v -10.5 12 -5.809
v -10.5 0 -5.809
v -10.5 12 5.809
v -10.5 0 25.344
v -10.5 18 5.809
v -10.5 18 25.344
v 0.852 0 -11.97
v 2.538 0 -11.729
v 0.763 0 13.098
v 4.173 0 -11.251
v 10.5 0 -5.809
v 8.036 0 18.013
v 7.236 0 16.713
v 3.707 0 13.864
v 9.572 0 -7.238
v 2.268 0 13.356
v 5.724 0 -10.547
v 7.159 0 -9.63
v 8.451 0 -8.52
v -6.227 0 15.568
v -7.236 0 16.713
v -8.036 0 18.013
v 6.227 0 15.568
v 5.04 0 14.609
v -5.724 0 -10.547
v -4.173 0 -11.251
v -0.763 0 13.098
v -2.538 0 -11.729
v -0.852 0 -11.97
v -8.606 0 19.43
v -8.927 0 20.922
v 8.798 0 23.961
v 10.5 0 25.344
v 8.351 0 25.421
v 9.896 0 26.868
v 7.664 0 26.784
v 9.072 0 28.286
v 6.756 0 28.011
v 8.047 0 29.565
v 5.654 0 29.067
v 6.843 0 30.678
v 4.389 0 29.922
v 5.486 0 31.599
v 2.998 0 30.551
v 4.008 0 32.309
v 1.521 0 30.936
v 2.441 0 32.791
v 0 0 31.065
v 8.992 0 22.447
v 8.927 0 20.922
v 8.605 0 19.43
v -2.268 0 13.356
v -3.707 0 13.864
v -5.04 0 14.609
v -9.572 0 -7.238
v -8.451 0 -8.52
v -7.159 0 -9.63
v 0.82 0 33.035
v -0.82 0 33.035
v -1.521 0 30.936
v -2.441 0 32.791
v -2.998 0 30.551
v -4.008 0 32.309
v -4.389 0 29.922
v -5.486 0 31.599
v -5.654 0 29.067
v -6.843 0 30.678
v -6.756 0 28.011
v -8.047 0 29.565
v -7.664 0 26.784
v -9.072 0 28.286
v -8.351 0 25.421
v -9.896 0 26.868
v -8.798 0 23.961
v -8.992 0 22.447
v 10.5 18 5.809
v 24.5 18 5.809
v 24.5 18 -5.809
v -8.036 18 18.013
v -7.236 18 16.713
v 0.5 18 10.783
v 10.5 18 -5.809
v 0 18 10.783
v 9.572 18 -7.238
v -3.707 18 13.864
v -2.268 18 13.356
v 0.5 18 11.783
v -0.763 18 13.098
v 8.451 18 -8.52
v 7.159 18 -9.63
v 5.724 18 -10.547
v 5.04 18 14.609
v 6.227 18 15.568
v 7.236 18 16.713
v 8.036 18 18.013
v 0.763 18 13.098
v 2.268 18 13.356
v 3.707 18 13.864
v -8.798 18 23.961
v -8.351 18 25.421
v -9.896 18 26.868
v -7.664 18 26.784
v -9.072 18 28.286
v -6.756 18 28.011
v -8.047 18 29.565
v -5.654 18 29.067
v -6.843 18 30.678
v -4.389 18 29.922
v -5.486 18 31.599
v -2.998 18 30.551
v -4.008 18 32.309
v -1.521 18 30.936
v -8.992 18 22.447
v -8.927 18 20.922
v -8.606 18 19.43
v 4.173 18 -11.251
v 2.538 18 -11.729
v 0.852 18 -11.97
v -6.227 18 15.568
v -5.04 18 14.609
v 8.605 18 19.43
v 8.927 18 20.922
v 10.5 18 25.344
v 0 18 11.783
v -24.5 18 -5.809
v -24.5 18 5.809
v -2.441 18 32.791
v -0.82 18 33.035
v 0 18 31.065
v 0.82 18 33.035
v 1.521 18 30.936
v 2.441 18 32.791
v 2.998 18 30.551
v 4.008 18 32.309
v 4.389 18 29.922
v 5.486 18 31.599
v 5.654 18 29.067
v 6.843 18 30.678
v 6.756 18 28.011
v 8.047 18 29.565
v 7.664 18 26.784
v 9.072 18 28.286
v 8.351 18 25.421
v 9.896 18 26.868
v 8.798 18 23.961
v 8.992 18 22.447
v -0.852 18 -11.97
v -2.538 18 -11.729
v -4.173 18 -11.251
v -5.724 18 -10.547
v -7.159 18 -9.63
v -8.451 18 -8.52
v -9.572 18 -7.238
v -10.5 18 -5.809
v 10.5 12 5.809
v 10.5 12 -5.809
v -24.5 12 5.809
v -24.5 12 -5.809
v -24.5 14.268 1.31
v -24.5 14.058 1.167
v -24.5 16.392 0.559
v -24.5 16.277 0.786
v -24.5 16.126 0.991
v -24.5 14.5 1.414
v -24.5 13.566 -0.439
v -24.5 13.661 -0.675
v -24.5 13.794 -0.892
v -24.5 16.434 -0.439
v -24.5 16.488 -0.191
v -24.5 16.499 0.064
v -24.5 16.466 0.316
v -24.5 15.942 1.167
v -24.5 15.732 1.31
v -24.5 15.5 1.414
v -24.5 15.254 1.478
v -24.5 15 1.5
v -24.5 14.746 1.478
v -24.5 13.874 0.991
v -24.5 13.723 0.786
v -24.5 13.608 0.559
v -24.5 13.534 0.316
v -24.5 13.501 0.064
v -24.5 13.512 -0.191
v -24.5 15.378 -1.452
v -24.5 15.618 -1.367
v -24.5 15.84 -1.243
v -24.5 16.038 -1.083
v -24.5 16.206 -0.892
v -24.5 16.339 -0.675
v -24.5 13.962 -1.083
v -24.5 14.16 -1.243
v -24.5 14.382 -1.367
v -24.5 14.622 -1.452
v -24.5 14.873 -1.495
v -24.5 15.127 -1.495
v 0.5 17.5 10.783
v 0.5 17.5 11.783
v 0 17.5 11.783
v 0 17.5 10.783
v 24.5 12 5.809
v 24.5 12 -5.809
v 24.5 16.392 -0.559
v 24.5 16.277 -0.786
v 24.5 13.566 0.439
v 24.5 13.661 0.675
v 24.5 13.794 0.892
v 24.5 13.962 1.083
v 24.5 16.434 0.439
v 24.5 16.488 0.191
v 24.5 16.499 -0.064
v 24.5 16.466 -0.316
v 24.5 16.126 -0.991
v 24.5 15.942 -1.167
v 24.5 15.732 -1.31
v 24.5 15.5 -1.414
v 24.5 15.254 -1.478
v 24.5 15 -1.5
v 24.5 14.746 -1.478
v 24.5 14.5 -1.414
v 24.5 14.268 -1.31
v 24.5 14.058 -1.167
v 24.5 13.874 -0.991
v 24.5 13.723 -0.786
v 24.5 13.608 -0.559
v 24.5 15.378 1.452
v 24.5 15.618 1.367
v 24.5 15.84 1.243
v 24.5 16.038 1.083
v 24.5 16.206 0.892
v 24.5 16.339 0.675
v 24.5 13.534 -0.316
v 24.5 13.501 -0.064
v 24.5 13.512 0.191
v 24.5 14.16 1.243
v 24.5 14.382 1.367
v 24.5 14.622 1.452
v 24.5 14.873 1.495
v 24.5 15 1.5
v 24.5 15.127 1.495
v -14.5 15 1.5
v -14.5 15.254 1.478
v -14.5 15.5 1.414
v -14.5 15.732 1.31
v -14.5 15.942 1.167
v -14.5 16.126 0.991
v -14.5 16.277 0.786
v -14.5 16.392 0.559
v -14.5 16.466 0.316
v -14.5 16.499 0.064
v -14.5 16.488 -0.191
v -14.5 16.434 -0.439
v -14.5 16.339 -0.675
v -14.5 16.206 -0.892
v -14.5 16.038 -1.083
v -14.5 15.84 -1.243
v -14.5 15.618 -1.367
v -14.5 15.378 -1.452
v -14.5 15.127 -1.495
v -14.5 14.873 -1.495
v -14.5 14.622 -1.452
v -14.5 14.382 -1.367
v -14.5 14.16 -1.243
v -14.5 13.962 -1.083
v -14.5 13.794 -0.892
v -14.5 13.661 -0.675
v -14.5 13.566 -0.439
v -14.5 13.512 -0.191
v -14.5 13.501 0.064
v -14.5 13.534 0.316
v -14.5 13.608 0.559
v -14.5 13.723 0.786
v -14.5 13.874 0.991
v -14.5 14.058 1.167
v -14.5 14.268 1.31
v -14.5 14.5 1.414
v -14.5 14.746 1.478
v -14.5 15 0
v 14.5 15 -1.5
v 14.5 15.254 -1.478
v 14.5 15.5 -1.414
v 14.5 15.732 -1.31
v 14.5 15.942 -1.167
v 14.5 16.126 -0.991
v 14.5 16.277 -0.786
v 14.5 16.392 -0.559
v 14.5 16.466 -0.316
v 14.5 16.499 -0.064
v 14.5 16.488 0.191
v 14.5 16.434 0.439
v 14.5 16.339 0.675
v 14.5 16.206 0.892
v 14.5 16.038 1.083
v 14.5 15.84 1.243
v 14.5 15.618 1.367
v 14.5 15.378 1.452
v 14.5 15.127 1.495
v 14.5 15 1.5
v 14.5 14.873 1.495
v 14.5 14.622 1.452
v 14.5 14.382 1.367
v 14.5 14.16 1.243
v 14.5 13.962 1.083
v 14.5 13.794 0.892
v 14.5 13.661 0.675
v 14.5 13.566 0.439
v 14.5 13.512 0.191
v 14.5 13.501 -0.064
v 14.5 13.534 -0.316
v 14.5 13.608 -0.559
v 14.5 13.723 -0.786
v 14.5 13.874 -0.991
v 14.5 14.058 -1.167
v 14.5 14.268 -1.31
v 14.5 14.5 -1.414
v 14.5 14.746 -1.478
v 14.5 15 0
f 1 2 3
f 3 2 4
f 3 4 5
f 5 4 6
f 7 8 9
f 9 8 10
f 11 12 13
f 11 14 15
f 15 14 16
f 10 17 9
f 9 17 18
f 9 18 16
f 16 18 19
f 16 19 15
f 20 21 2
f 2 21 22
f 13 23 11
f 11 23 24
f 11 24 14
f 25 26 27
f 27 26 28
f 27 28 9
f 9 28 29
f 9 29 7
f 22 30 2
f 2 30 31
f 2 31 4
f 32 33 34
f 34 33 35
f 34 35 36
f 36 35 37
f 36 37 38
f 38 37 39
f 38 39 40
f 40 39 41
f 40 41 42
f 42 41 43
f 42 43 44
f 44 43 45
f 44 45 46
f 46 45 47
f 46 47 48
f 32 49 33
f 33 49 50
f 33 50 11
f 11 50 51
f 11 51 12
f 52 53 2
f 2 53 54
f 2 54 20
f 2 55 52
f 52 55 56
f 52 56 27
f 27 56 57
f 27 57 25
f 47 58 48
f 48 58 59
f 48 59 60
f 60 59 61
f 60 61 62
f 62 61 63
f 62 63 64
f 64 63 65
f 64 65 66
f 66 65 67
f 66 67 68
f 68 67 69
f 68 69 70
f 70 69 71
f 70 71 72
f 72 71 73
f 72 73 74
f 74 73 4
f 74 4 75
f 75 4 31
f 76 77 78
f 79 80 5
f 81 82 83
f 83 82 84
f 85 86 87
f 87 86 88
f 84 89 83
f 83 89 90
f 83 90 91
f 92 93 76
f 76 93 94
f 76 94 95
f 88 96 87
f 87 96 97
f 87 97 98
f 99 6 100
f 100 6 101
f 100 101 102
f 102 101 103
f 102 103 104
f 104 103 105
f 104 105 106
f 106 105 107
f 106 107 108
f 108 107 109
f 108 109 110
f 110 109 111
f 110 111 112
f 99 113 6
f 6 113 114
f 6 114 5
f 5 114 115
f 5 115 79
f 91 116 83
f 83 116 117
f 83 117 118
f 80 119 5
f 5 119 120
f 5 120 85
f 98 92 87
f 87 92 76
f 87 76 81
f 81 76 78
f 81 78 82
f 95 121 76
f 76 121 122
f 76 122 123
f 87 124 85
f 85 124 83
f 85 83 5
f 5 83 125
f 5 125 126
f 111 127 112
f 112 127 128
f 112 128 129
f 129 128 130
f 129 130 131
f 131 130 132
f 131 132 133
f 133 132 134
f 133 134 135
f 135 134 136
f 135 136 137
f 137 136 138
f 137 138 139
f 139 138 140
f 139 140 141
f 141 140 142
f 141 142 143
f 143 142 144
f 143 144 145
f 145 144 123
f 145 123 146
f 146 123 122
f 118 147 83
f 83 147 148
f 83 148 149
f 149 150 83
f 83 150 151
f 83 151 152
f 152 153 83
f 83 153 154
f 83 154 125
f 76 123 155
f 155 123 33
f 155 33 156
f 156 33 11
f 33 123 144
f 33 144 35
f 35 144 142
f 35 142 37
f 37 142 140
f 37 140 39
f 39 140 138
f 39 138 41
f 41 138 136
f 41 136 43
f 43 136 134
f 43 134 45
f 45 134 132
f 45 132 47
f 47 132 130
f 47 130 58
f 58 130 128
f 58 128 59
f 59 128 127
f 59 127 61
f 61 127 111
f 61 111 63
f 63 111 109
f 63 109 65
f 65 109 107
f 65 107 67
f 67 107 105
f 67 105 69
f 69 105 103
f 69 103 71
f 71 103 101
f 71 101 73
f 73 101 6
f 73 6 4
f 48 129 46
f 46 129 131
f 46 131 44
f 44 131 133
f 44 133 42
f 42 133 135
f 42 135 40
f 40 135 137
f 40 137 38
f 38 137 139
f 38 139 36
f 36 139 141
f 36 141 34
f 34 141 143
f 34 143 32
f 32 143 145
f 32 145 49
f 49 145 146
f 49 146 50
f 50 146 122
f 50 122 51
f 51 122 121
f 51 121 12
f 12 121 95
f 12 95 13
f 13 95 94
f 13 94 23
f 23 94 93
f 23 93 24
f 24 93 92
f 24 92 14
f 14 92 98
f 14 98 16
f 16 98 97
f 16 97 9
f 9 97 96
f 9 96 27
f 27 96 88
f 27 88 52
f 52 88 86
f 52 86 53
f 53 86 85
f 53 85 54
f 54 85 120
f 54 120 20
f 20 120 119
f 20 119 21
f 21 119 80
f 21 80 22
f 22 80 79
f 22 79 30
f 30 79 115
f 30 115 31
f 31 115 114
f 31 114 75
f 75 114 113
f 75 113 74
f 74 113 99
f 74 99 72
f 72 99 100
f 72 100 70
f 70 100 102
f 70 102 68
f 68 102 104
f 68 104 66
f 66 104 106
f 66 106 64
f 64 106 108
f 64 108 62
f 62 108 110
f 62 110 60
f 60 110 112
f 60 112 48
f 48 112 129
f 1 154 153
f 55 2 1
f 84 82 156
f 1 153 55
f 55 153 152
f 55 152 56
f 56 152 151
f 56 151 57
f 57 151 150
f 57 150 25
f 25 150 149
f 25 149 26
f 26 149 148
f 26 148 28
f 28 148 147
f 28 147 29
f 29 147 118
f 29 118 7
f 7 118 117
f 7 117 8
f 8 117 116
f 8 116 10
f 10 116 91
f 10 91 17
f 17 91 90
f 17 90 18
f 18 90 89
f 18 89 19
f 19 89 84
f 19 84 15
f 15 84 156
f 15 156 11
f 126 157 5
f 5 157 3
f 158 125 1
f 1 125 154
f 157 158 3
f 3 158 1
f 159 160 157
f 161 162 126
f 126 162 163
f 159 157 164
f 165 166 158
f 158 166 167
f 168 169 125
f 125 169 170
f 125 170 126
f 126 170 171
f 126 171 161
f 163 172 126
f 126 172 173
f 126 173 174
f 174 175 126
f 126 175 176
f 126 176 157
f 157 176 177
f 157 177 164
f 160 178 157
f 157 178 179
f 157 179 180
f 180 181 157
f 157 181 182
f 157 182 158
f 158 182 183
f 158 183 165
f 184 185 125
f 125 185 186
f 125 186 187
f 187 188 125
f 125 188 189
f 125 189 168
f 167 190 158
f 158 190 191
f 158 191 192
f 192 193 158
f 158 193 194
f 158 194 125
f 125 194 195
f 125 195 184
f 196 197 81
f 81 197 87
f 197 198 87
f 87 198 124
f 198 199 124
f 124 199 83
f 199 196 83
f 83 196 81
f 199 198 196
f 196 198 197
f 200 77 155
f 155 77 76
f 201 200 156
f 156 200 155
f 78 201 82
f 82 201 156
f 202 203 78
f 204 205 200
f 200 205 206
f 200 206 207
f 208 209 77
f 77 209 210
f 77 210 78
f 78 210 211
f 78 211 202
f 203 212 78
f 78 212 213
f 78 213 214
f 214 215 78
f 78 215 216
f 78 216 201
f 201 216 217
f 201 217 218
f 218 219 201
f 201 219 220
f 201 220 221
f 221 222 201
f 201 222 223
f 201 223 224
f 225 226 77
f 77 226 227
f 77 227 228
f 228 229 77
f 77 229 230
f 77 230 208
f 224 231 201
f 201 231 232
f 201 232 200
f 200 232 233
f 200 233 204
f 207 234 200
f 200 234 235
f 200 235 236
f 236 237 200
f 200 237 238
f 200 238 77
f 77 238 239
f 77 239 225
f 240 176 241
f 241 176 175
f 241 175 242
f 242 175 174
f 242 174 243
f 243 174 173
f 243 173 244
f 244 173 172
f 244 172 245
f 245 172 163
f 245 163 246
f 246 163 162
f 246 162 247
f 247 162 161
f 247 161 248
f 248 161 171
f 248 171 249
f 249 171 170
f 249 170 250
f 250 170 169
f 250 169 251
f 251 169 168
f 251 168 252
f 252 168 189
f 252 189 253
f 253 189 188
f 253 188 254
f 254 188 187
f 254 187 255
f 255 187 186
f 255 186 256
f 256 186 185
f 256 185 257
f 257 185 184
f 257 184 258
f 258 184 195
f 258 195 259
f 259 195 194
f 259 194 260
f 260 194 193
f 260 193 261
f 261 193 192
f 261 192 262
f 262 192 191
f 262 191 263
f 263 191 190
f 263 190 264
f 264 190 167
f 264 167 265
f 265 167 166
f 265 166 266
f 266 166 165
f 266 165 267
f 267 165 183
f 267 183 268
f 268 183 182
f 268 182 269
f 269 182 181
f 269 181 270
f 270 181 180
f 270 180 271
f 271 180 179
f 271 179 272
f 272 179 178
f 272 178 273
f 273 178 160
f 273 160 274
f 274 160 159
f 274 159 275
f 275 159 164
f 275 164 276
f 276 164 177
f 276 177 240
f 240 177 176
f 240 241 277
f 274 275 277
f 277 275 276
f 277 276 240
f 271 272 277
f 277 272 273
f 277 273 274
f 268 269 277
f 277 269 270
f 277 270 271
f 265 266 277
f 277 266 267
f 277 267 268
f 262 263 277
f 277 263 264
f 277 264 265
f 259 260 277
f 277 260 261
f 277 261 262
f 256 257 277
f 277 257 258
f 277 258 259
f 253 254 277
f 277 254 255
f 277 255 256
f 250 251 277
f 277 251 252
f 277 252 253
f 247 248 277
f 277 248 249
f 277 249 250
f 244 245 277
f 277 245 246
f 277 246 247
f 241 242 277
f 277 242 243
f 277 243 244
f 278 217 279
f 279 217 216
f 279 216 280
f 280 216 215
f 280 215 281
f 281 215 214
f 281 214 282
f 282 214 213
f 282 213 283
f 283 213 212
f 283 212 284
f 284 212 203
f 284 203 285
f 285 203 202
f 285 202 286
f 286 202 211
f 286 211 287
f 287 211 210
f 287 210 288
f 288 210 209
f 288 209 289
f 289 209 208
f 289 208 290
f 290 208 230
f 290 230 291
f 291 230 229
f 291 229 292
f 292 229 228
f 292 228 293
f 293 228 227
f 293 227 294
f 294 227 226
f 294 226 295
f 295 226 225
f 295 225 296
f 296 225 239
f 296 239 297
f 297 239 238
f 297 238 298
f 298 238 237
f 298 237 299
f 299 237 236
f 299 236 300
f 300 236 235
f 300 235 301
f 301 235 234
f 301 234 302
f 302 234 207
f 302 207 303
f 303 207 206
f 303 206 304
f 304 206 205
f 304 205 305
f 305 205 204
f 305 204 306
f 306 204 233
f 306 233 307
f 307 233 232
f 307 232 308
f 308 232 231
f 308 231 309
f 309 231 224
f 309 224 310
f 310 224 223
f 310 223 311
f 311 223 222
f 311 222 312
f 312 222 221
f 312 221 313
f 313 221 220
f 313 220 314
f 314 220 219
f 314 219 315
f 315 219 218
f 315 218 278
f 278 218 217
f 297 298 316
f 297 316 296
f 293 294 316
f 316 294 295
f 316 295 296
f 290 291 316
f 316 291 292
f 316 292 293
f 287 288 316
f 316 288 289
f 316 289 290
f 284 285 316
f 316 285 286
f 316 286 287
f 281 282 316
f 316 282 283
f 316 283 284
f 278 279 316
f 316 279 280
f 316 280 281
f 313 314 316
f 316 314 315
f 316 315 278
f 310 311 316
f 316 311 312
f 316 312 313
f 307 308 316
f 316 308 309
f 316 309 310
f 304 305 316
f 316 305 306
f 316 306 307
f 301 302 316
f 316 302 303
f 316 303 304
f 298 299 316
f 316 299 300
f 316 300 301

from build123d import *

# Parameters (mm, degrees)
SKETCH1_W           = 21
SKETCH1_H           = 45.065175024
BOSS_EXTRUDE1_DEPTH = 18
SKETCH6_R           = 9
CUT_EXTRUDE4_DEPTH  = 52
CUT_EXTRUDE5_DEPTH  = 52
SKETCH10_W          = 5.809475019
SKETCH10_H          = 6
BOSS_EXTRUDE2_DEPTH = 14
SKETCH11_W          = 0.5
SKETCH11_H          = 1
CUT_EXTRUDE6_DEPTH  = 0.5
CUT_EXTRUDE7_DEPTH  = 10


with BuildPart() as part:
    # Sketch1 → Boss-Extrude1 (new body)
    with BuildSketch(Plane(origin=(0, 0, 0), x_dir=(1, 0, 0), z_dir=(0, 1, 0))):
        with Locations((0, -10.532587512)):
            Rectangle(SKETCH1_W, SKETCH1_H)
    extrude(amount=BOSS_EXTRUDE1_DEPTH)

    # Sketch6 → Cut-Extrude4 (cut)
    with BuildSketch(Plane(origin=(0, 18, 0), x_dir=(1, 0, 0), z_dir=(0, 1, 0))):
        with BuildLine():
            Line((0, -33.065175024), (10.5, -33.065175024))
            Line((10.5, -33.065175024), (10.5, -25.343894287))
            ThreePointArc((10.5, -25.343894287), (6.51667431, -30.927057214), (0, -33.065175024))
        make_face()
        with Locations(Location((0, -22.065175024, 0), (0, 0, 270))):
            Circle(SKETCH6_R)
        with BuildLine():
            Line((-10.5, -33.065175024), (0, -33.065175024))
            ThreePointArc((0, -33.065175024), (-6.51667431, -30.927057214), (-10.5, -25.343894287))
            Line((-10.5, -25.343894287), (-10.5, -33.065175024))
        make_face()
    extrude(amount=-CUT_EXTRUDE4_DEPTH, mode=Mode.SUBTRACT)

    # Sketch8 → Cut-Extrude5 (cut)
    with BuildSketch(Plane(origin=(0, 18, 0), x_dir=(1, 0, 0), z_dir=(0, 1, 0))):
        with BuildLine():
            Line((0, 12), (-10.5, 12))
            Line((-10.5, 12), (-10.5, 5.809475019))
            ThreePointArc((-10.5, 5.809475019), (-6.094518019, 10.337158706), (0, 12))
        make_face()
        with BuildLine():
            Line((10.5, 12), (0, 12))
            ThreePointArc((0, 12), (6.094518019, 10.337158706), (10.5, 5.809475019))
            Line((10.5, 5.809475019), (10.5, 12))
        make_face()
    extrude(amount=-CUT_EXTRUDE5_DEPTH, mode=Mode.SUBTRACT)

    # Sketch10 → Boss-Extrude2 (add)
    with BuildSketch(Plane.ZY.offset(10.5)):
        with Locations((2.90473751, 15)):
            Rectangle(SKETCH10_W, SKETCH10_H)
        with Locations((-2.90473751, 15)):
            Rectangle(SKETCH10_W, SKETCH10_H)
    boss_extrude2 = extrude(amount=BOSS_EXTRUDE2_DEPTH)

    # Sketch11 → Cut-Extrude6 (cut)
    with BuildSketch(Plane(origin=(0, 18, 0), x_dir=(1, 0, 0), z_dir=(0, 1, 0))):
        with Locations((0.25, -11.282587512)):
            Rectangle(SKETCH11_W, SKETCH11_H)
    extrude(amount=-CUT_EXTRUDE6_DEPTH, mode=Mode.SUBTRACT)

    # Mirror1: Boss-Extrude2 across plane
    add(boss_extrude2.mirror(Plane(origin=(0, 17.5, 0), x_dir=(0, 0, 1), z_dir=(-1, 0, 0))))

    # Sketch12 → Cut-Extrude7 (cut)
    with BuildSketch(Plane.ZY.offset(24.5)):
        with BuildLine():
            ThreePointArc((1.5, 15), (1.060660172, 16.060660172), (0, 16.5))
            Line((0, 16.5), (0, 13.5))
            ThreePointArc((0, 13.5), (1.060660172, 13.939339828), (1.5, 15))
        make_face()
        with BuildLine():
            Line((0, 13.5), (0, 16.5))
            ThreePointArc((0, 16.5), (-1.5, 15), (0, 13.5))
        make_face()
    cut_extrude7 = extrude(amount=-CUT_EXTRUDE7_DEPTH, mode=Mode.SUBTRACT)

    # Mirror2: Cut-Extrude7 across plane
    add(cut_extrude7.mirror(Plane(origin=(0, 17.5, 0), x_dir=(0, 0, 1), z_dir=(-1, 0, 0))), mode=Mode.SUBTRACT)


solid = part.part
